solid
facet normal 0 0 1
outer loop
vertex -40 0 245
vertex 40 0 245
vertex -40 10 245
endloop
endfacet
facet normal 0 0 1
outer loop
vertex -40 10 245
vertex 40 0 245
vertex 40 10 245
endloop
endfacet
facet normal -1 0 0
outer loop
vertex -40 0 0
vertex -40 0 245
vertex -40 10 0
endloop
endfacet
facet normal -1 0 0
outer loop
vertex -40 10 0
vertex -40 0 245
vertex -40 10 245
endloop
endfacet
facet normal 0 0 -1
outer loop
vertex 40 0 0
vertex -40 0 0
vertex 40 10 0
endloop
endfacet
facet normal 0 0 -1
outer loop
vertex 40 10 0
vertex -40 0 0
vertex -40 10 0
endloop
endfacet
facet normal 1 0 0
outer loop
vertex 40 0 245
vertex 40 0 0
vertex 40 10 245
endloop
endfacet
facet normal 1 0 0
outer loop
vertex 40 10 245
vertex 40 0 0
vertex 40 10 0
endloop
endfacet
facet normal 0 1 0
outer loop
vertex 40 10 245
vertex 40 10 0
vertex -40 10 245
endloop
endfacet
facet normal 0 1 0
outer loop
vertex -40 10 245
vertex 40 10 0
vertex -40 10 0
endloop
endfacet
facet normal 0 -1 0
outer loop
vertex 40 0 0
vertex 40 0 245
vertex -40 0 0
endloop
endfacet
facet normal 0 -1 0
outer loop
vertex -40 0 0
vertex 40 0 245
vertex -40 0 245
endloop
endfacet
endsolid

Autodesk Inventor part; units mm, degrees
ref_plane "YZ Plane" through (0, 0, 0) normal (1, 0, 0) x (0, 1, 0)
ref_plane "XZ Plane" through (0, 0, 0) normal (0, 1, 0) x (-1, 0, 0)
ref_plane "XY Plane" through (0, 0, 0) normal (0, 0, 1) x (1, 0, 0)
sketch "草图1" plane through (0, 0, 0) normal (0, 1, 0) x (-1, 0, 0)
  line L0 (40, 245) -> (-40, 245)
  line L1 (-40, 245) -> (-40, -245)
  line L2 (-40, -245) -> (40, -245)
  line L3 (40, -245) -> (40, 245)
  line L4 (0, 5.532) -> (0, -5.7915)
  line L5 (3, 0) -> (-2, 0)
  line L6 (40, 0) -> (-40, 0)
  point P0 (0, 0)
  point P1 (0, 0)
  point P2 (-2, 0)
  dimension "d0" = 80
  dimension "d1" = 490
extrude "拉伸1" add sketch "草图1" along normal blind 10 contours L3 L6 L5 L1 L0
properties part number "front_1"
